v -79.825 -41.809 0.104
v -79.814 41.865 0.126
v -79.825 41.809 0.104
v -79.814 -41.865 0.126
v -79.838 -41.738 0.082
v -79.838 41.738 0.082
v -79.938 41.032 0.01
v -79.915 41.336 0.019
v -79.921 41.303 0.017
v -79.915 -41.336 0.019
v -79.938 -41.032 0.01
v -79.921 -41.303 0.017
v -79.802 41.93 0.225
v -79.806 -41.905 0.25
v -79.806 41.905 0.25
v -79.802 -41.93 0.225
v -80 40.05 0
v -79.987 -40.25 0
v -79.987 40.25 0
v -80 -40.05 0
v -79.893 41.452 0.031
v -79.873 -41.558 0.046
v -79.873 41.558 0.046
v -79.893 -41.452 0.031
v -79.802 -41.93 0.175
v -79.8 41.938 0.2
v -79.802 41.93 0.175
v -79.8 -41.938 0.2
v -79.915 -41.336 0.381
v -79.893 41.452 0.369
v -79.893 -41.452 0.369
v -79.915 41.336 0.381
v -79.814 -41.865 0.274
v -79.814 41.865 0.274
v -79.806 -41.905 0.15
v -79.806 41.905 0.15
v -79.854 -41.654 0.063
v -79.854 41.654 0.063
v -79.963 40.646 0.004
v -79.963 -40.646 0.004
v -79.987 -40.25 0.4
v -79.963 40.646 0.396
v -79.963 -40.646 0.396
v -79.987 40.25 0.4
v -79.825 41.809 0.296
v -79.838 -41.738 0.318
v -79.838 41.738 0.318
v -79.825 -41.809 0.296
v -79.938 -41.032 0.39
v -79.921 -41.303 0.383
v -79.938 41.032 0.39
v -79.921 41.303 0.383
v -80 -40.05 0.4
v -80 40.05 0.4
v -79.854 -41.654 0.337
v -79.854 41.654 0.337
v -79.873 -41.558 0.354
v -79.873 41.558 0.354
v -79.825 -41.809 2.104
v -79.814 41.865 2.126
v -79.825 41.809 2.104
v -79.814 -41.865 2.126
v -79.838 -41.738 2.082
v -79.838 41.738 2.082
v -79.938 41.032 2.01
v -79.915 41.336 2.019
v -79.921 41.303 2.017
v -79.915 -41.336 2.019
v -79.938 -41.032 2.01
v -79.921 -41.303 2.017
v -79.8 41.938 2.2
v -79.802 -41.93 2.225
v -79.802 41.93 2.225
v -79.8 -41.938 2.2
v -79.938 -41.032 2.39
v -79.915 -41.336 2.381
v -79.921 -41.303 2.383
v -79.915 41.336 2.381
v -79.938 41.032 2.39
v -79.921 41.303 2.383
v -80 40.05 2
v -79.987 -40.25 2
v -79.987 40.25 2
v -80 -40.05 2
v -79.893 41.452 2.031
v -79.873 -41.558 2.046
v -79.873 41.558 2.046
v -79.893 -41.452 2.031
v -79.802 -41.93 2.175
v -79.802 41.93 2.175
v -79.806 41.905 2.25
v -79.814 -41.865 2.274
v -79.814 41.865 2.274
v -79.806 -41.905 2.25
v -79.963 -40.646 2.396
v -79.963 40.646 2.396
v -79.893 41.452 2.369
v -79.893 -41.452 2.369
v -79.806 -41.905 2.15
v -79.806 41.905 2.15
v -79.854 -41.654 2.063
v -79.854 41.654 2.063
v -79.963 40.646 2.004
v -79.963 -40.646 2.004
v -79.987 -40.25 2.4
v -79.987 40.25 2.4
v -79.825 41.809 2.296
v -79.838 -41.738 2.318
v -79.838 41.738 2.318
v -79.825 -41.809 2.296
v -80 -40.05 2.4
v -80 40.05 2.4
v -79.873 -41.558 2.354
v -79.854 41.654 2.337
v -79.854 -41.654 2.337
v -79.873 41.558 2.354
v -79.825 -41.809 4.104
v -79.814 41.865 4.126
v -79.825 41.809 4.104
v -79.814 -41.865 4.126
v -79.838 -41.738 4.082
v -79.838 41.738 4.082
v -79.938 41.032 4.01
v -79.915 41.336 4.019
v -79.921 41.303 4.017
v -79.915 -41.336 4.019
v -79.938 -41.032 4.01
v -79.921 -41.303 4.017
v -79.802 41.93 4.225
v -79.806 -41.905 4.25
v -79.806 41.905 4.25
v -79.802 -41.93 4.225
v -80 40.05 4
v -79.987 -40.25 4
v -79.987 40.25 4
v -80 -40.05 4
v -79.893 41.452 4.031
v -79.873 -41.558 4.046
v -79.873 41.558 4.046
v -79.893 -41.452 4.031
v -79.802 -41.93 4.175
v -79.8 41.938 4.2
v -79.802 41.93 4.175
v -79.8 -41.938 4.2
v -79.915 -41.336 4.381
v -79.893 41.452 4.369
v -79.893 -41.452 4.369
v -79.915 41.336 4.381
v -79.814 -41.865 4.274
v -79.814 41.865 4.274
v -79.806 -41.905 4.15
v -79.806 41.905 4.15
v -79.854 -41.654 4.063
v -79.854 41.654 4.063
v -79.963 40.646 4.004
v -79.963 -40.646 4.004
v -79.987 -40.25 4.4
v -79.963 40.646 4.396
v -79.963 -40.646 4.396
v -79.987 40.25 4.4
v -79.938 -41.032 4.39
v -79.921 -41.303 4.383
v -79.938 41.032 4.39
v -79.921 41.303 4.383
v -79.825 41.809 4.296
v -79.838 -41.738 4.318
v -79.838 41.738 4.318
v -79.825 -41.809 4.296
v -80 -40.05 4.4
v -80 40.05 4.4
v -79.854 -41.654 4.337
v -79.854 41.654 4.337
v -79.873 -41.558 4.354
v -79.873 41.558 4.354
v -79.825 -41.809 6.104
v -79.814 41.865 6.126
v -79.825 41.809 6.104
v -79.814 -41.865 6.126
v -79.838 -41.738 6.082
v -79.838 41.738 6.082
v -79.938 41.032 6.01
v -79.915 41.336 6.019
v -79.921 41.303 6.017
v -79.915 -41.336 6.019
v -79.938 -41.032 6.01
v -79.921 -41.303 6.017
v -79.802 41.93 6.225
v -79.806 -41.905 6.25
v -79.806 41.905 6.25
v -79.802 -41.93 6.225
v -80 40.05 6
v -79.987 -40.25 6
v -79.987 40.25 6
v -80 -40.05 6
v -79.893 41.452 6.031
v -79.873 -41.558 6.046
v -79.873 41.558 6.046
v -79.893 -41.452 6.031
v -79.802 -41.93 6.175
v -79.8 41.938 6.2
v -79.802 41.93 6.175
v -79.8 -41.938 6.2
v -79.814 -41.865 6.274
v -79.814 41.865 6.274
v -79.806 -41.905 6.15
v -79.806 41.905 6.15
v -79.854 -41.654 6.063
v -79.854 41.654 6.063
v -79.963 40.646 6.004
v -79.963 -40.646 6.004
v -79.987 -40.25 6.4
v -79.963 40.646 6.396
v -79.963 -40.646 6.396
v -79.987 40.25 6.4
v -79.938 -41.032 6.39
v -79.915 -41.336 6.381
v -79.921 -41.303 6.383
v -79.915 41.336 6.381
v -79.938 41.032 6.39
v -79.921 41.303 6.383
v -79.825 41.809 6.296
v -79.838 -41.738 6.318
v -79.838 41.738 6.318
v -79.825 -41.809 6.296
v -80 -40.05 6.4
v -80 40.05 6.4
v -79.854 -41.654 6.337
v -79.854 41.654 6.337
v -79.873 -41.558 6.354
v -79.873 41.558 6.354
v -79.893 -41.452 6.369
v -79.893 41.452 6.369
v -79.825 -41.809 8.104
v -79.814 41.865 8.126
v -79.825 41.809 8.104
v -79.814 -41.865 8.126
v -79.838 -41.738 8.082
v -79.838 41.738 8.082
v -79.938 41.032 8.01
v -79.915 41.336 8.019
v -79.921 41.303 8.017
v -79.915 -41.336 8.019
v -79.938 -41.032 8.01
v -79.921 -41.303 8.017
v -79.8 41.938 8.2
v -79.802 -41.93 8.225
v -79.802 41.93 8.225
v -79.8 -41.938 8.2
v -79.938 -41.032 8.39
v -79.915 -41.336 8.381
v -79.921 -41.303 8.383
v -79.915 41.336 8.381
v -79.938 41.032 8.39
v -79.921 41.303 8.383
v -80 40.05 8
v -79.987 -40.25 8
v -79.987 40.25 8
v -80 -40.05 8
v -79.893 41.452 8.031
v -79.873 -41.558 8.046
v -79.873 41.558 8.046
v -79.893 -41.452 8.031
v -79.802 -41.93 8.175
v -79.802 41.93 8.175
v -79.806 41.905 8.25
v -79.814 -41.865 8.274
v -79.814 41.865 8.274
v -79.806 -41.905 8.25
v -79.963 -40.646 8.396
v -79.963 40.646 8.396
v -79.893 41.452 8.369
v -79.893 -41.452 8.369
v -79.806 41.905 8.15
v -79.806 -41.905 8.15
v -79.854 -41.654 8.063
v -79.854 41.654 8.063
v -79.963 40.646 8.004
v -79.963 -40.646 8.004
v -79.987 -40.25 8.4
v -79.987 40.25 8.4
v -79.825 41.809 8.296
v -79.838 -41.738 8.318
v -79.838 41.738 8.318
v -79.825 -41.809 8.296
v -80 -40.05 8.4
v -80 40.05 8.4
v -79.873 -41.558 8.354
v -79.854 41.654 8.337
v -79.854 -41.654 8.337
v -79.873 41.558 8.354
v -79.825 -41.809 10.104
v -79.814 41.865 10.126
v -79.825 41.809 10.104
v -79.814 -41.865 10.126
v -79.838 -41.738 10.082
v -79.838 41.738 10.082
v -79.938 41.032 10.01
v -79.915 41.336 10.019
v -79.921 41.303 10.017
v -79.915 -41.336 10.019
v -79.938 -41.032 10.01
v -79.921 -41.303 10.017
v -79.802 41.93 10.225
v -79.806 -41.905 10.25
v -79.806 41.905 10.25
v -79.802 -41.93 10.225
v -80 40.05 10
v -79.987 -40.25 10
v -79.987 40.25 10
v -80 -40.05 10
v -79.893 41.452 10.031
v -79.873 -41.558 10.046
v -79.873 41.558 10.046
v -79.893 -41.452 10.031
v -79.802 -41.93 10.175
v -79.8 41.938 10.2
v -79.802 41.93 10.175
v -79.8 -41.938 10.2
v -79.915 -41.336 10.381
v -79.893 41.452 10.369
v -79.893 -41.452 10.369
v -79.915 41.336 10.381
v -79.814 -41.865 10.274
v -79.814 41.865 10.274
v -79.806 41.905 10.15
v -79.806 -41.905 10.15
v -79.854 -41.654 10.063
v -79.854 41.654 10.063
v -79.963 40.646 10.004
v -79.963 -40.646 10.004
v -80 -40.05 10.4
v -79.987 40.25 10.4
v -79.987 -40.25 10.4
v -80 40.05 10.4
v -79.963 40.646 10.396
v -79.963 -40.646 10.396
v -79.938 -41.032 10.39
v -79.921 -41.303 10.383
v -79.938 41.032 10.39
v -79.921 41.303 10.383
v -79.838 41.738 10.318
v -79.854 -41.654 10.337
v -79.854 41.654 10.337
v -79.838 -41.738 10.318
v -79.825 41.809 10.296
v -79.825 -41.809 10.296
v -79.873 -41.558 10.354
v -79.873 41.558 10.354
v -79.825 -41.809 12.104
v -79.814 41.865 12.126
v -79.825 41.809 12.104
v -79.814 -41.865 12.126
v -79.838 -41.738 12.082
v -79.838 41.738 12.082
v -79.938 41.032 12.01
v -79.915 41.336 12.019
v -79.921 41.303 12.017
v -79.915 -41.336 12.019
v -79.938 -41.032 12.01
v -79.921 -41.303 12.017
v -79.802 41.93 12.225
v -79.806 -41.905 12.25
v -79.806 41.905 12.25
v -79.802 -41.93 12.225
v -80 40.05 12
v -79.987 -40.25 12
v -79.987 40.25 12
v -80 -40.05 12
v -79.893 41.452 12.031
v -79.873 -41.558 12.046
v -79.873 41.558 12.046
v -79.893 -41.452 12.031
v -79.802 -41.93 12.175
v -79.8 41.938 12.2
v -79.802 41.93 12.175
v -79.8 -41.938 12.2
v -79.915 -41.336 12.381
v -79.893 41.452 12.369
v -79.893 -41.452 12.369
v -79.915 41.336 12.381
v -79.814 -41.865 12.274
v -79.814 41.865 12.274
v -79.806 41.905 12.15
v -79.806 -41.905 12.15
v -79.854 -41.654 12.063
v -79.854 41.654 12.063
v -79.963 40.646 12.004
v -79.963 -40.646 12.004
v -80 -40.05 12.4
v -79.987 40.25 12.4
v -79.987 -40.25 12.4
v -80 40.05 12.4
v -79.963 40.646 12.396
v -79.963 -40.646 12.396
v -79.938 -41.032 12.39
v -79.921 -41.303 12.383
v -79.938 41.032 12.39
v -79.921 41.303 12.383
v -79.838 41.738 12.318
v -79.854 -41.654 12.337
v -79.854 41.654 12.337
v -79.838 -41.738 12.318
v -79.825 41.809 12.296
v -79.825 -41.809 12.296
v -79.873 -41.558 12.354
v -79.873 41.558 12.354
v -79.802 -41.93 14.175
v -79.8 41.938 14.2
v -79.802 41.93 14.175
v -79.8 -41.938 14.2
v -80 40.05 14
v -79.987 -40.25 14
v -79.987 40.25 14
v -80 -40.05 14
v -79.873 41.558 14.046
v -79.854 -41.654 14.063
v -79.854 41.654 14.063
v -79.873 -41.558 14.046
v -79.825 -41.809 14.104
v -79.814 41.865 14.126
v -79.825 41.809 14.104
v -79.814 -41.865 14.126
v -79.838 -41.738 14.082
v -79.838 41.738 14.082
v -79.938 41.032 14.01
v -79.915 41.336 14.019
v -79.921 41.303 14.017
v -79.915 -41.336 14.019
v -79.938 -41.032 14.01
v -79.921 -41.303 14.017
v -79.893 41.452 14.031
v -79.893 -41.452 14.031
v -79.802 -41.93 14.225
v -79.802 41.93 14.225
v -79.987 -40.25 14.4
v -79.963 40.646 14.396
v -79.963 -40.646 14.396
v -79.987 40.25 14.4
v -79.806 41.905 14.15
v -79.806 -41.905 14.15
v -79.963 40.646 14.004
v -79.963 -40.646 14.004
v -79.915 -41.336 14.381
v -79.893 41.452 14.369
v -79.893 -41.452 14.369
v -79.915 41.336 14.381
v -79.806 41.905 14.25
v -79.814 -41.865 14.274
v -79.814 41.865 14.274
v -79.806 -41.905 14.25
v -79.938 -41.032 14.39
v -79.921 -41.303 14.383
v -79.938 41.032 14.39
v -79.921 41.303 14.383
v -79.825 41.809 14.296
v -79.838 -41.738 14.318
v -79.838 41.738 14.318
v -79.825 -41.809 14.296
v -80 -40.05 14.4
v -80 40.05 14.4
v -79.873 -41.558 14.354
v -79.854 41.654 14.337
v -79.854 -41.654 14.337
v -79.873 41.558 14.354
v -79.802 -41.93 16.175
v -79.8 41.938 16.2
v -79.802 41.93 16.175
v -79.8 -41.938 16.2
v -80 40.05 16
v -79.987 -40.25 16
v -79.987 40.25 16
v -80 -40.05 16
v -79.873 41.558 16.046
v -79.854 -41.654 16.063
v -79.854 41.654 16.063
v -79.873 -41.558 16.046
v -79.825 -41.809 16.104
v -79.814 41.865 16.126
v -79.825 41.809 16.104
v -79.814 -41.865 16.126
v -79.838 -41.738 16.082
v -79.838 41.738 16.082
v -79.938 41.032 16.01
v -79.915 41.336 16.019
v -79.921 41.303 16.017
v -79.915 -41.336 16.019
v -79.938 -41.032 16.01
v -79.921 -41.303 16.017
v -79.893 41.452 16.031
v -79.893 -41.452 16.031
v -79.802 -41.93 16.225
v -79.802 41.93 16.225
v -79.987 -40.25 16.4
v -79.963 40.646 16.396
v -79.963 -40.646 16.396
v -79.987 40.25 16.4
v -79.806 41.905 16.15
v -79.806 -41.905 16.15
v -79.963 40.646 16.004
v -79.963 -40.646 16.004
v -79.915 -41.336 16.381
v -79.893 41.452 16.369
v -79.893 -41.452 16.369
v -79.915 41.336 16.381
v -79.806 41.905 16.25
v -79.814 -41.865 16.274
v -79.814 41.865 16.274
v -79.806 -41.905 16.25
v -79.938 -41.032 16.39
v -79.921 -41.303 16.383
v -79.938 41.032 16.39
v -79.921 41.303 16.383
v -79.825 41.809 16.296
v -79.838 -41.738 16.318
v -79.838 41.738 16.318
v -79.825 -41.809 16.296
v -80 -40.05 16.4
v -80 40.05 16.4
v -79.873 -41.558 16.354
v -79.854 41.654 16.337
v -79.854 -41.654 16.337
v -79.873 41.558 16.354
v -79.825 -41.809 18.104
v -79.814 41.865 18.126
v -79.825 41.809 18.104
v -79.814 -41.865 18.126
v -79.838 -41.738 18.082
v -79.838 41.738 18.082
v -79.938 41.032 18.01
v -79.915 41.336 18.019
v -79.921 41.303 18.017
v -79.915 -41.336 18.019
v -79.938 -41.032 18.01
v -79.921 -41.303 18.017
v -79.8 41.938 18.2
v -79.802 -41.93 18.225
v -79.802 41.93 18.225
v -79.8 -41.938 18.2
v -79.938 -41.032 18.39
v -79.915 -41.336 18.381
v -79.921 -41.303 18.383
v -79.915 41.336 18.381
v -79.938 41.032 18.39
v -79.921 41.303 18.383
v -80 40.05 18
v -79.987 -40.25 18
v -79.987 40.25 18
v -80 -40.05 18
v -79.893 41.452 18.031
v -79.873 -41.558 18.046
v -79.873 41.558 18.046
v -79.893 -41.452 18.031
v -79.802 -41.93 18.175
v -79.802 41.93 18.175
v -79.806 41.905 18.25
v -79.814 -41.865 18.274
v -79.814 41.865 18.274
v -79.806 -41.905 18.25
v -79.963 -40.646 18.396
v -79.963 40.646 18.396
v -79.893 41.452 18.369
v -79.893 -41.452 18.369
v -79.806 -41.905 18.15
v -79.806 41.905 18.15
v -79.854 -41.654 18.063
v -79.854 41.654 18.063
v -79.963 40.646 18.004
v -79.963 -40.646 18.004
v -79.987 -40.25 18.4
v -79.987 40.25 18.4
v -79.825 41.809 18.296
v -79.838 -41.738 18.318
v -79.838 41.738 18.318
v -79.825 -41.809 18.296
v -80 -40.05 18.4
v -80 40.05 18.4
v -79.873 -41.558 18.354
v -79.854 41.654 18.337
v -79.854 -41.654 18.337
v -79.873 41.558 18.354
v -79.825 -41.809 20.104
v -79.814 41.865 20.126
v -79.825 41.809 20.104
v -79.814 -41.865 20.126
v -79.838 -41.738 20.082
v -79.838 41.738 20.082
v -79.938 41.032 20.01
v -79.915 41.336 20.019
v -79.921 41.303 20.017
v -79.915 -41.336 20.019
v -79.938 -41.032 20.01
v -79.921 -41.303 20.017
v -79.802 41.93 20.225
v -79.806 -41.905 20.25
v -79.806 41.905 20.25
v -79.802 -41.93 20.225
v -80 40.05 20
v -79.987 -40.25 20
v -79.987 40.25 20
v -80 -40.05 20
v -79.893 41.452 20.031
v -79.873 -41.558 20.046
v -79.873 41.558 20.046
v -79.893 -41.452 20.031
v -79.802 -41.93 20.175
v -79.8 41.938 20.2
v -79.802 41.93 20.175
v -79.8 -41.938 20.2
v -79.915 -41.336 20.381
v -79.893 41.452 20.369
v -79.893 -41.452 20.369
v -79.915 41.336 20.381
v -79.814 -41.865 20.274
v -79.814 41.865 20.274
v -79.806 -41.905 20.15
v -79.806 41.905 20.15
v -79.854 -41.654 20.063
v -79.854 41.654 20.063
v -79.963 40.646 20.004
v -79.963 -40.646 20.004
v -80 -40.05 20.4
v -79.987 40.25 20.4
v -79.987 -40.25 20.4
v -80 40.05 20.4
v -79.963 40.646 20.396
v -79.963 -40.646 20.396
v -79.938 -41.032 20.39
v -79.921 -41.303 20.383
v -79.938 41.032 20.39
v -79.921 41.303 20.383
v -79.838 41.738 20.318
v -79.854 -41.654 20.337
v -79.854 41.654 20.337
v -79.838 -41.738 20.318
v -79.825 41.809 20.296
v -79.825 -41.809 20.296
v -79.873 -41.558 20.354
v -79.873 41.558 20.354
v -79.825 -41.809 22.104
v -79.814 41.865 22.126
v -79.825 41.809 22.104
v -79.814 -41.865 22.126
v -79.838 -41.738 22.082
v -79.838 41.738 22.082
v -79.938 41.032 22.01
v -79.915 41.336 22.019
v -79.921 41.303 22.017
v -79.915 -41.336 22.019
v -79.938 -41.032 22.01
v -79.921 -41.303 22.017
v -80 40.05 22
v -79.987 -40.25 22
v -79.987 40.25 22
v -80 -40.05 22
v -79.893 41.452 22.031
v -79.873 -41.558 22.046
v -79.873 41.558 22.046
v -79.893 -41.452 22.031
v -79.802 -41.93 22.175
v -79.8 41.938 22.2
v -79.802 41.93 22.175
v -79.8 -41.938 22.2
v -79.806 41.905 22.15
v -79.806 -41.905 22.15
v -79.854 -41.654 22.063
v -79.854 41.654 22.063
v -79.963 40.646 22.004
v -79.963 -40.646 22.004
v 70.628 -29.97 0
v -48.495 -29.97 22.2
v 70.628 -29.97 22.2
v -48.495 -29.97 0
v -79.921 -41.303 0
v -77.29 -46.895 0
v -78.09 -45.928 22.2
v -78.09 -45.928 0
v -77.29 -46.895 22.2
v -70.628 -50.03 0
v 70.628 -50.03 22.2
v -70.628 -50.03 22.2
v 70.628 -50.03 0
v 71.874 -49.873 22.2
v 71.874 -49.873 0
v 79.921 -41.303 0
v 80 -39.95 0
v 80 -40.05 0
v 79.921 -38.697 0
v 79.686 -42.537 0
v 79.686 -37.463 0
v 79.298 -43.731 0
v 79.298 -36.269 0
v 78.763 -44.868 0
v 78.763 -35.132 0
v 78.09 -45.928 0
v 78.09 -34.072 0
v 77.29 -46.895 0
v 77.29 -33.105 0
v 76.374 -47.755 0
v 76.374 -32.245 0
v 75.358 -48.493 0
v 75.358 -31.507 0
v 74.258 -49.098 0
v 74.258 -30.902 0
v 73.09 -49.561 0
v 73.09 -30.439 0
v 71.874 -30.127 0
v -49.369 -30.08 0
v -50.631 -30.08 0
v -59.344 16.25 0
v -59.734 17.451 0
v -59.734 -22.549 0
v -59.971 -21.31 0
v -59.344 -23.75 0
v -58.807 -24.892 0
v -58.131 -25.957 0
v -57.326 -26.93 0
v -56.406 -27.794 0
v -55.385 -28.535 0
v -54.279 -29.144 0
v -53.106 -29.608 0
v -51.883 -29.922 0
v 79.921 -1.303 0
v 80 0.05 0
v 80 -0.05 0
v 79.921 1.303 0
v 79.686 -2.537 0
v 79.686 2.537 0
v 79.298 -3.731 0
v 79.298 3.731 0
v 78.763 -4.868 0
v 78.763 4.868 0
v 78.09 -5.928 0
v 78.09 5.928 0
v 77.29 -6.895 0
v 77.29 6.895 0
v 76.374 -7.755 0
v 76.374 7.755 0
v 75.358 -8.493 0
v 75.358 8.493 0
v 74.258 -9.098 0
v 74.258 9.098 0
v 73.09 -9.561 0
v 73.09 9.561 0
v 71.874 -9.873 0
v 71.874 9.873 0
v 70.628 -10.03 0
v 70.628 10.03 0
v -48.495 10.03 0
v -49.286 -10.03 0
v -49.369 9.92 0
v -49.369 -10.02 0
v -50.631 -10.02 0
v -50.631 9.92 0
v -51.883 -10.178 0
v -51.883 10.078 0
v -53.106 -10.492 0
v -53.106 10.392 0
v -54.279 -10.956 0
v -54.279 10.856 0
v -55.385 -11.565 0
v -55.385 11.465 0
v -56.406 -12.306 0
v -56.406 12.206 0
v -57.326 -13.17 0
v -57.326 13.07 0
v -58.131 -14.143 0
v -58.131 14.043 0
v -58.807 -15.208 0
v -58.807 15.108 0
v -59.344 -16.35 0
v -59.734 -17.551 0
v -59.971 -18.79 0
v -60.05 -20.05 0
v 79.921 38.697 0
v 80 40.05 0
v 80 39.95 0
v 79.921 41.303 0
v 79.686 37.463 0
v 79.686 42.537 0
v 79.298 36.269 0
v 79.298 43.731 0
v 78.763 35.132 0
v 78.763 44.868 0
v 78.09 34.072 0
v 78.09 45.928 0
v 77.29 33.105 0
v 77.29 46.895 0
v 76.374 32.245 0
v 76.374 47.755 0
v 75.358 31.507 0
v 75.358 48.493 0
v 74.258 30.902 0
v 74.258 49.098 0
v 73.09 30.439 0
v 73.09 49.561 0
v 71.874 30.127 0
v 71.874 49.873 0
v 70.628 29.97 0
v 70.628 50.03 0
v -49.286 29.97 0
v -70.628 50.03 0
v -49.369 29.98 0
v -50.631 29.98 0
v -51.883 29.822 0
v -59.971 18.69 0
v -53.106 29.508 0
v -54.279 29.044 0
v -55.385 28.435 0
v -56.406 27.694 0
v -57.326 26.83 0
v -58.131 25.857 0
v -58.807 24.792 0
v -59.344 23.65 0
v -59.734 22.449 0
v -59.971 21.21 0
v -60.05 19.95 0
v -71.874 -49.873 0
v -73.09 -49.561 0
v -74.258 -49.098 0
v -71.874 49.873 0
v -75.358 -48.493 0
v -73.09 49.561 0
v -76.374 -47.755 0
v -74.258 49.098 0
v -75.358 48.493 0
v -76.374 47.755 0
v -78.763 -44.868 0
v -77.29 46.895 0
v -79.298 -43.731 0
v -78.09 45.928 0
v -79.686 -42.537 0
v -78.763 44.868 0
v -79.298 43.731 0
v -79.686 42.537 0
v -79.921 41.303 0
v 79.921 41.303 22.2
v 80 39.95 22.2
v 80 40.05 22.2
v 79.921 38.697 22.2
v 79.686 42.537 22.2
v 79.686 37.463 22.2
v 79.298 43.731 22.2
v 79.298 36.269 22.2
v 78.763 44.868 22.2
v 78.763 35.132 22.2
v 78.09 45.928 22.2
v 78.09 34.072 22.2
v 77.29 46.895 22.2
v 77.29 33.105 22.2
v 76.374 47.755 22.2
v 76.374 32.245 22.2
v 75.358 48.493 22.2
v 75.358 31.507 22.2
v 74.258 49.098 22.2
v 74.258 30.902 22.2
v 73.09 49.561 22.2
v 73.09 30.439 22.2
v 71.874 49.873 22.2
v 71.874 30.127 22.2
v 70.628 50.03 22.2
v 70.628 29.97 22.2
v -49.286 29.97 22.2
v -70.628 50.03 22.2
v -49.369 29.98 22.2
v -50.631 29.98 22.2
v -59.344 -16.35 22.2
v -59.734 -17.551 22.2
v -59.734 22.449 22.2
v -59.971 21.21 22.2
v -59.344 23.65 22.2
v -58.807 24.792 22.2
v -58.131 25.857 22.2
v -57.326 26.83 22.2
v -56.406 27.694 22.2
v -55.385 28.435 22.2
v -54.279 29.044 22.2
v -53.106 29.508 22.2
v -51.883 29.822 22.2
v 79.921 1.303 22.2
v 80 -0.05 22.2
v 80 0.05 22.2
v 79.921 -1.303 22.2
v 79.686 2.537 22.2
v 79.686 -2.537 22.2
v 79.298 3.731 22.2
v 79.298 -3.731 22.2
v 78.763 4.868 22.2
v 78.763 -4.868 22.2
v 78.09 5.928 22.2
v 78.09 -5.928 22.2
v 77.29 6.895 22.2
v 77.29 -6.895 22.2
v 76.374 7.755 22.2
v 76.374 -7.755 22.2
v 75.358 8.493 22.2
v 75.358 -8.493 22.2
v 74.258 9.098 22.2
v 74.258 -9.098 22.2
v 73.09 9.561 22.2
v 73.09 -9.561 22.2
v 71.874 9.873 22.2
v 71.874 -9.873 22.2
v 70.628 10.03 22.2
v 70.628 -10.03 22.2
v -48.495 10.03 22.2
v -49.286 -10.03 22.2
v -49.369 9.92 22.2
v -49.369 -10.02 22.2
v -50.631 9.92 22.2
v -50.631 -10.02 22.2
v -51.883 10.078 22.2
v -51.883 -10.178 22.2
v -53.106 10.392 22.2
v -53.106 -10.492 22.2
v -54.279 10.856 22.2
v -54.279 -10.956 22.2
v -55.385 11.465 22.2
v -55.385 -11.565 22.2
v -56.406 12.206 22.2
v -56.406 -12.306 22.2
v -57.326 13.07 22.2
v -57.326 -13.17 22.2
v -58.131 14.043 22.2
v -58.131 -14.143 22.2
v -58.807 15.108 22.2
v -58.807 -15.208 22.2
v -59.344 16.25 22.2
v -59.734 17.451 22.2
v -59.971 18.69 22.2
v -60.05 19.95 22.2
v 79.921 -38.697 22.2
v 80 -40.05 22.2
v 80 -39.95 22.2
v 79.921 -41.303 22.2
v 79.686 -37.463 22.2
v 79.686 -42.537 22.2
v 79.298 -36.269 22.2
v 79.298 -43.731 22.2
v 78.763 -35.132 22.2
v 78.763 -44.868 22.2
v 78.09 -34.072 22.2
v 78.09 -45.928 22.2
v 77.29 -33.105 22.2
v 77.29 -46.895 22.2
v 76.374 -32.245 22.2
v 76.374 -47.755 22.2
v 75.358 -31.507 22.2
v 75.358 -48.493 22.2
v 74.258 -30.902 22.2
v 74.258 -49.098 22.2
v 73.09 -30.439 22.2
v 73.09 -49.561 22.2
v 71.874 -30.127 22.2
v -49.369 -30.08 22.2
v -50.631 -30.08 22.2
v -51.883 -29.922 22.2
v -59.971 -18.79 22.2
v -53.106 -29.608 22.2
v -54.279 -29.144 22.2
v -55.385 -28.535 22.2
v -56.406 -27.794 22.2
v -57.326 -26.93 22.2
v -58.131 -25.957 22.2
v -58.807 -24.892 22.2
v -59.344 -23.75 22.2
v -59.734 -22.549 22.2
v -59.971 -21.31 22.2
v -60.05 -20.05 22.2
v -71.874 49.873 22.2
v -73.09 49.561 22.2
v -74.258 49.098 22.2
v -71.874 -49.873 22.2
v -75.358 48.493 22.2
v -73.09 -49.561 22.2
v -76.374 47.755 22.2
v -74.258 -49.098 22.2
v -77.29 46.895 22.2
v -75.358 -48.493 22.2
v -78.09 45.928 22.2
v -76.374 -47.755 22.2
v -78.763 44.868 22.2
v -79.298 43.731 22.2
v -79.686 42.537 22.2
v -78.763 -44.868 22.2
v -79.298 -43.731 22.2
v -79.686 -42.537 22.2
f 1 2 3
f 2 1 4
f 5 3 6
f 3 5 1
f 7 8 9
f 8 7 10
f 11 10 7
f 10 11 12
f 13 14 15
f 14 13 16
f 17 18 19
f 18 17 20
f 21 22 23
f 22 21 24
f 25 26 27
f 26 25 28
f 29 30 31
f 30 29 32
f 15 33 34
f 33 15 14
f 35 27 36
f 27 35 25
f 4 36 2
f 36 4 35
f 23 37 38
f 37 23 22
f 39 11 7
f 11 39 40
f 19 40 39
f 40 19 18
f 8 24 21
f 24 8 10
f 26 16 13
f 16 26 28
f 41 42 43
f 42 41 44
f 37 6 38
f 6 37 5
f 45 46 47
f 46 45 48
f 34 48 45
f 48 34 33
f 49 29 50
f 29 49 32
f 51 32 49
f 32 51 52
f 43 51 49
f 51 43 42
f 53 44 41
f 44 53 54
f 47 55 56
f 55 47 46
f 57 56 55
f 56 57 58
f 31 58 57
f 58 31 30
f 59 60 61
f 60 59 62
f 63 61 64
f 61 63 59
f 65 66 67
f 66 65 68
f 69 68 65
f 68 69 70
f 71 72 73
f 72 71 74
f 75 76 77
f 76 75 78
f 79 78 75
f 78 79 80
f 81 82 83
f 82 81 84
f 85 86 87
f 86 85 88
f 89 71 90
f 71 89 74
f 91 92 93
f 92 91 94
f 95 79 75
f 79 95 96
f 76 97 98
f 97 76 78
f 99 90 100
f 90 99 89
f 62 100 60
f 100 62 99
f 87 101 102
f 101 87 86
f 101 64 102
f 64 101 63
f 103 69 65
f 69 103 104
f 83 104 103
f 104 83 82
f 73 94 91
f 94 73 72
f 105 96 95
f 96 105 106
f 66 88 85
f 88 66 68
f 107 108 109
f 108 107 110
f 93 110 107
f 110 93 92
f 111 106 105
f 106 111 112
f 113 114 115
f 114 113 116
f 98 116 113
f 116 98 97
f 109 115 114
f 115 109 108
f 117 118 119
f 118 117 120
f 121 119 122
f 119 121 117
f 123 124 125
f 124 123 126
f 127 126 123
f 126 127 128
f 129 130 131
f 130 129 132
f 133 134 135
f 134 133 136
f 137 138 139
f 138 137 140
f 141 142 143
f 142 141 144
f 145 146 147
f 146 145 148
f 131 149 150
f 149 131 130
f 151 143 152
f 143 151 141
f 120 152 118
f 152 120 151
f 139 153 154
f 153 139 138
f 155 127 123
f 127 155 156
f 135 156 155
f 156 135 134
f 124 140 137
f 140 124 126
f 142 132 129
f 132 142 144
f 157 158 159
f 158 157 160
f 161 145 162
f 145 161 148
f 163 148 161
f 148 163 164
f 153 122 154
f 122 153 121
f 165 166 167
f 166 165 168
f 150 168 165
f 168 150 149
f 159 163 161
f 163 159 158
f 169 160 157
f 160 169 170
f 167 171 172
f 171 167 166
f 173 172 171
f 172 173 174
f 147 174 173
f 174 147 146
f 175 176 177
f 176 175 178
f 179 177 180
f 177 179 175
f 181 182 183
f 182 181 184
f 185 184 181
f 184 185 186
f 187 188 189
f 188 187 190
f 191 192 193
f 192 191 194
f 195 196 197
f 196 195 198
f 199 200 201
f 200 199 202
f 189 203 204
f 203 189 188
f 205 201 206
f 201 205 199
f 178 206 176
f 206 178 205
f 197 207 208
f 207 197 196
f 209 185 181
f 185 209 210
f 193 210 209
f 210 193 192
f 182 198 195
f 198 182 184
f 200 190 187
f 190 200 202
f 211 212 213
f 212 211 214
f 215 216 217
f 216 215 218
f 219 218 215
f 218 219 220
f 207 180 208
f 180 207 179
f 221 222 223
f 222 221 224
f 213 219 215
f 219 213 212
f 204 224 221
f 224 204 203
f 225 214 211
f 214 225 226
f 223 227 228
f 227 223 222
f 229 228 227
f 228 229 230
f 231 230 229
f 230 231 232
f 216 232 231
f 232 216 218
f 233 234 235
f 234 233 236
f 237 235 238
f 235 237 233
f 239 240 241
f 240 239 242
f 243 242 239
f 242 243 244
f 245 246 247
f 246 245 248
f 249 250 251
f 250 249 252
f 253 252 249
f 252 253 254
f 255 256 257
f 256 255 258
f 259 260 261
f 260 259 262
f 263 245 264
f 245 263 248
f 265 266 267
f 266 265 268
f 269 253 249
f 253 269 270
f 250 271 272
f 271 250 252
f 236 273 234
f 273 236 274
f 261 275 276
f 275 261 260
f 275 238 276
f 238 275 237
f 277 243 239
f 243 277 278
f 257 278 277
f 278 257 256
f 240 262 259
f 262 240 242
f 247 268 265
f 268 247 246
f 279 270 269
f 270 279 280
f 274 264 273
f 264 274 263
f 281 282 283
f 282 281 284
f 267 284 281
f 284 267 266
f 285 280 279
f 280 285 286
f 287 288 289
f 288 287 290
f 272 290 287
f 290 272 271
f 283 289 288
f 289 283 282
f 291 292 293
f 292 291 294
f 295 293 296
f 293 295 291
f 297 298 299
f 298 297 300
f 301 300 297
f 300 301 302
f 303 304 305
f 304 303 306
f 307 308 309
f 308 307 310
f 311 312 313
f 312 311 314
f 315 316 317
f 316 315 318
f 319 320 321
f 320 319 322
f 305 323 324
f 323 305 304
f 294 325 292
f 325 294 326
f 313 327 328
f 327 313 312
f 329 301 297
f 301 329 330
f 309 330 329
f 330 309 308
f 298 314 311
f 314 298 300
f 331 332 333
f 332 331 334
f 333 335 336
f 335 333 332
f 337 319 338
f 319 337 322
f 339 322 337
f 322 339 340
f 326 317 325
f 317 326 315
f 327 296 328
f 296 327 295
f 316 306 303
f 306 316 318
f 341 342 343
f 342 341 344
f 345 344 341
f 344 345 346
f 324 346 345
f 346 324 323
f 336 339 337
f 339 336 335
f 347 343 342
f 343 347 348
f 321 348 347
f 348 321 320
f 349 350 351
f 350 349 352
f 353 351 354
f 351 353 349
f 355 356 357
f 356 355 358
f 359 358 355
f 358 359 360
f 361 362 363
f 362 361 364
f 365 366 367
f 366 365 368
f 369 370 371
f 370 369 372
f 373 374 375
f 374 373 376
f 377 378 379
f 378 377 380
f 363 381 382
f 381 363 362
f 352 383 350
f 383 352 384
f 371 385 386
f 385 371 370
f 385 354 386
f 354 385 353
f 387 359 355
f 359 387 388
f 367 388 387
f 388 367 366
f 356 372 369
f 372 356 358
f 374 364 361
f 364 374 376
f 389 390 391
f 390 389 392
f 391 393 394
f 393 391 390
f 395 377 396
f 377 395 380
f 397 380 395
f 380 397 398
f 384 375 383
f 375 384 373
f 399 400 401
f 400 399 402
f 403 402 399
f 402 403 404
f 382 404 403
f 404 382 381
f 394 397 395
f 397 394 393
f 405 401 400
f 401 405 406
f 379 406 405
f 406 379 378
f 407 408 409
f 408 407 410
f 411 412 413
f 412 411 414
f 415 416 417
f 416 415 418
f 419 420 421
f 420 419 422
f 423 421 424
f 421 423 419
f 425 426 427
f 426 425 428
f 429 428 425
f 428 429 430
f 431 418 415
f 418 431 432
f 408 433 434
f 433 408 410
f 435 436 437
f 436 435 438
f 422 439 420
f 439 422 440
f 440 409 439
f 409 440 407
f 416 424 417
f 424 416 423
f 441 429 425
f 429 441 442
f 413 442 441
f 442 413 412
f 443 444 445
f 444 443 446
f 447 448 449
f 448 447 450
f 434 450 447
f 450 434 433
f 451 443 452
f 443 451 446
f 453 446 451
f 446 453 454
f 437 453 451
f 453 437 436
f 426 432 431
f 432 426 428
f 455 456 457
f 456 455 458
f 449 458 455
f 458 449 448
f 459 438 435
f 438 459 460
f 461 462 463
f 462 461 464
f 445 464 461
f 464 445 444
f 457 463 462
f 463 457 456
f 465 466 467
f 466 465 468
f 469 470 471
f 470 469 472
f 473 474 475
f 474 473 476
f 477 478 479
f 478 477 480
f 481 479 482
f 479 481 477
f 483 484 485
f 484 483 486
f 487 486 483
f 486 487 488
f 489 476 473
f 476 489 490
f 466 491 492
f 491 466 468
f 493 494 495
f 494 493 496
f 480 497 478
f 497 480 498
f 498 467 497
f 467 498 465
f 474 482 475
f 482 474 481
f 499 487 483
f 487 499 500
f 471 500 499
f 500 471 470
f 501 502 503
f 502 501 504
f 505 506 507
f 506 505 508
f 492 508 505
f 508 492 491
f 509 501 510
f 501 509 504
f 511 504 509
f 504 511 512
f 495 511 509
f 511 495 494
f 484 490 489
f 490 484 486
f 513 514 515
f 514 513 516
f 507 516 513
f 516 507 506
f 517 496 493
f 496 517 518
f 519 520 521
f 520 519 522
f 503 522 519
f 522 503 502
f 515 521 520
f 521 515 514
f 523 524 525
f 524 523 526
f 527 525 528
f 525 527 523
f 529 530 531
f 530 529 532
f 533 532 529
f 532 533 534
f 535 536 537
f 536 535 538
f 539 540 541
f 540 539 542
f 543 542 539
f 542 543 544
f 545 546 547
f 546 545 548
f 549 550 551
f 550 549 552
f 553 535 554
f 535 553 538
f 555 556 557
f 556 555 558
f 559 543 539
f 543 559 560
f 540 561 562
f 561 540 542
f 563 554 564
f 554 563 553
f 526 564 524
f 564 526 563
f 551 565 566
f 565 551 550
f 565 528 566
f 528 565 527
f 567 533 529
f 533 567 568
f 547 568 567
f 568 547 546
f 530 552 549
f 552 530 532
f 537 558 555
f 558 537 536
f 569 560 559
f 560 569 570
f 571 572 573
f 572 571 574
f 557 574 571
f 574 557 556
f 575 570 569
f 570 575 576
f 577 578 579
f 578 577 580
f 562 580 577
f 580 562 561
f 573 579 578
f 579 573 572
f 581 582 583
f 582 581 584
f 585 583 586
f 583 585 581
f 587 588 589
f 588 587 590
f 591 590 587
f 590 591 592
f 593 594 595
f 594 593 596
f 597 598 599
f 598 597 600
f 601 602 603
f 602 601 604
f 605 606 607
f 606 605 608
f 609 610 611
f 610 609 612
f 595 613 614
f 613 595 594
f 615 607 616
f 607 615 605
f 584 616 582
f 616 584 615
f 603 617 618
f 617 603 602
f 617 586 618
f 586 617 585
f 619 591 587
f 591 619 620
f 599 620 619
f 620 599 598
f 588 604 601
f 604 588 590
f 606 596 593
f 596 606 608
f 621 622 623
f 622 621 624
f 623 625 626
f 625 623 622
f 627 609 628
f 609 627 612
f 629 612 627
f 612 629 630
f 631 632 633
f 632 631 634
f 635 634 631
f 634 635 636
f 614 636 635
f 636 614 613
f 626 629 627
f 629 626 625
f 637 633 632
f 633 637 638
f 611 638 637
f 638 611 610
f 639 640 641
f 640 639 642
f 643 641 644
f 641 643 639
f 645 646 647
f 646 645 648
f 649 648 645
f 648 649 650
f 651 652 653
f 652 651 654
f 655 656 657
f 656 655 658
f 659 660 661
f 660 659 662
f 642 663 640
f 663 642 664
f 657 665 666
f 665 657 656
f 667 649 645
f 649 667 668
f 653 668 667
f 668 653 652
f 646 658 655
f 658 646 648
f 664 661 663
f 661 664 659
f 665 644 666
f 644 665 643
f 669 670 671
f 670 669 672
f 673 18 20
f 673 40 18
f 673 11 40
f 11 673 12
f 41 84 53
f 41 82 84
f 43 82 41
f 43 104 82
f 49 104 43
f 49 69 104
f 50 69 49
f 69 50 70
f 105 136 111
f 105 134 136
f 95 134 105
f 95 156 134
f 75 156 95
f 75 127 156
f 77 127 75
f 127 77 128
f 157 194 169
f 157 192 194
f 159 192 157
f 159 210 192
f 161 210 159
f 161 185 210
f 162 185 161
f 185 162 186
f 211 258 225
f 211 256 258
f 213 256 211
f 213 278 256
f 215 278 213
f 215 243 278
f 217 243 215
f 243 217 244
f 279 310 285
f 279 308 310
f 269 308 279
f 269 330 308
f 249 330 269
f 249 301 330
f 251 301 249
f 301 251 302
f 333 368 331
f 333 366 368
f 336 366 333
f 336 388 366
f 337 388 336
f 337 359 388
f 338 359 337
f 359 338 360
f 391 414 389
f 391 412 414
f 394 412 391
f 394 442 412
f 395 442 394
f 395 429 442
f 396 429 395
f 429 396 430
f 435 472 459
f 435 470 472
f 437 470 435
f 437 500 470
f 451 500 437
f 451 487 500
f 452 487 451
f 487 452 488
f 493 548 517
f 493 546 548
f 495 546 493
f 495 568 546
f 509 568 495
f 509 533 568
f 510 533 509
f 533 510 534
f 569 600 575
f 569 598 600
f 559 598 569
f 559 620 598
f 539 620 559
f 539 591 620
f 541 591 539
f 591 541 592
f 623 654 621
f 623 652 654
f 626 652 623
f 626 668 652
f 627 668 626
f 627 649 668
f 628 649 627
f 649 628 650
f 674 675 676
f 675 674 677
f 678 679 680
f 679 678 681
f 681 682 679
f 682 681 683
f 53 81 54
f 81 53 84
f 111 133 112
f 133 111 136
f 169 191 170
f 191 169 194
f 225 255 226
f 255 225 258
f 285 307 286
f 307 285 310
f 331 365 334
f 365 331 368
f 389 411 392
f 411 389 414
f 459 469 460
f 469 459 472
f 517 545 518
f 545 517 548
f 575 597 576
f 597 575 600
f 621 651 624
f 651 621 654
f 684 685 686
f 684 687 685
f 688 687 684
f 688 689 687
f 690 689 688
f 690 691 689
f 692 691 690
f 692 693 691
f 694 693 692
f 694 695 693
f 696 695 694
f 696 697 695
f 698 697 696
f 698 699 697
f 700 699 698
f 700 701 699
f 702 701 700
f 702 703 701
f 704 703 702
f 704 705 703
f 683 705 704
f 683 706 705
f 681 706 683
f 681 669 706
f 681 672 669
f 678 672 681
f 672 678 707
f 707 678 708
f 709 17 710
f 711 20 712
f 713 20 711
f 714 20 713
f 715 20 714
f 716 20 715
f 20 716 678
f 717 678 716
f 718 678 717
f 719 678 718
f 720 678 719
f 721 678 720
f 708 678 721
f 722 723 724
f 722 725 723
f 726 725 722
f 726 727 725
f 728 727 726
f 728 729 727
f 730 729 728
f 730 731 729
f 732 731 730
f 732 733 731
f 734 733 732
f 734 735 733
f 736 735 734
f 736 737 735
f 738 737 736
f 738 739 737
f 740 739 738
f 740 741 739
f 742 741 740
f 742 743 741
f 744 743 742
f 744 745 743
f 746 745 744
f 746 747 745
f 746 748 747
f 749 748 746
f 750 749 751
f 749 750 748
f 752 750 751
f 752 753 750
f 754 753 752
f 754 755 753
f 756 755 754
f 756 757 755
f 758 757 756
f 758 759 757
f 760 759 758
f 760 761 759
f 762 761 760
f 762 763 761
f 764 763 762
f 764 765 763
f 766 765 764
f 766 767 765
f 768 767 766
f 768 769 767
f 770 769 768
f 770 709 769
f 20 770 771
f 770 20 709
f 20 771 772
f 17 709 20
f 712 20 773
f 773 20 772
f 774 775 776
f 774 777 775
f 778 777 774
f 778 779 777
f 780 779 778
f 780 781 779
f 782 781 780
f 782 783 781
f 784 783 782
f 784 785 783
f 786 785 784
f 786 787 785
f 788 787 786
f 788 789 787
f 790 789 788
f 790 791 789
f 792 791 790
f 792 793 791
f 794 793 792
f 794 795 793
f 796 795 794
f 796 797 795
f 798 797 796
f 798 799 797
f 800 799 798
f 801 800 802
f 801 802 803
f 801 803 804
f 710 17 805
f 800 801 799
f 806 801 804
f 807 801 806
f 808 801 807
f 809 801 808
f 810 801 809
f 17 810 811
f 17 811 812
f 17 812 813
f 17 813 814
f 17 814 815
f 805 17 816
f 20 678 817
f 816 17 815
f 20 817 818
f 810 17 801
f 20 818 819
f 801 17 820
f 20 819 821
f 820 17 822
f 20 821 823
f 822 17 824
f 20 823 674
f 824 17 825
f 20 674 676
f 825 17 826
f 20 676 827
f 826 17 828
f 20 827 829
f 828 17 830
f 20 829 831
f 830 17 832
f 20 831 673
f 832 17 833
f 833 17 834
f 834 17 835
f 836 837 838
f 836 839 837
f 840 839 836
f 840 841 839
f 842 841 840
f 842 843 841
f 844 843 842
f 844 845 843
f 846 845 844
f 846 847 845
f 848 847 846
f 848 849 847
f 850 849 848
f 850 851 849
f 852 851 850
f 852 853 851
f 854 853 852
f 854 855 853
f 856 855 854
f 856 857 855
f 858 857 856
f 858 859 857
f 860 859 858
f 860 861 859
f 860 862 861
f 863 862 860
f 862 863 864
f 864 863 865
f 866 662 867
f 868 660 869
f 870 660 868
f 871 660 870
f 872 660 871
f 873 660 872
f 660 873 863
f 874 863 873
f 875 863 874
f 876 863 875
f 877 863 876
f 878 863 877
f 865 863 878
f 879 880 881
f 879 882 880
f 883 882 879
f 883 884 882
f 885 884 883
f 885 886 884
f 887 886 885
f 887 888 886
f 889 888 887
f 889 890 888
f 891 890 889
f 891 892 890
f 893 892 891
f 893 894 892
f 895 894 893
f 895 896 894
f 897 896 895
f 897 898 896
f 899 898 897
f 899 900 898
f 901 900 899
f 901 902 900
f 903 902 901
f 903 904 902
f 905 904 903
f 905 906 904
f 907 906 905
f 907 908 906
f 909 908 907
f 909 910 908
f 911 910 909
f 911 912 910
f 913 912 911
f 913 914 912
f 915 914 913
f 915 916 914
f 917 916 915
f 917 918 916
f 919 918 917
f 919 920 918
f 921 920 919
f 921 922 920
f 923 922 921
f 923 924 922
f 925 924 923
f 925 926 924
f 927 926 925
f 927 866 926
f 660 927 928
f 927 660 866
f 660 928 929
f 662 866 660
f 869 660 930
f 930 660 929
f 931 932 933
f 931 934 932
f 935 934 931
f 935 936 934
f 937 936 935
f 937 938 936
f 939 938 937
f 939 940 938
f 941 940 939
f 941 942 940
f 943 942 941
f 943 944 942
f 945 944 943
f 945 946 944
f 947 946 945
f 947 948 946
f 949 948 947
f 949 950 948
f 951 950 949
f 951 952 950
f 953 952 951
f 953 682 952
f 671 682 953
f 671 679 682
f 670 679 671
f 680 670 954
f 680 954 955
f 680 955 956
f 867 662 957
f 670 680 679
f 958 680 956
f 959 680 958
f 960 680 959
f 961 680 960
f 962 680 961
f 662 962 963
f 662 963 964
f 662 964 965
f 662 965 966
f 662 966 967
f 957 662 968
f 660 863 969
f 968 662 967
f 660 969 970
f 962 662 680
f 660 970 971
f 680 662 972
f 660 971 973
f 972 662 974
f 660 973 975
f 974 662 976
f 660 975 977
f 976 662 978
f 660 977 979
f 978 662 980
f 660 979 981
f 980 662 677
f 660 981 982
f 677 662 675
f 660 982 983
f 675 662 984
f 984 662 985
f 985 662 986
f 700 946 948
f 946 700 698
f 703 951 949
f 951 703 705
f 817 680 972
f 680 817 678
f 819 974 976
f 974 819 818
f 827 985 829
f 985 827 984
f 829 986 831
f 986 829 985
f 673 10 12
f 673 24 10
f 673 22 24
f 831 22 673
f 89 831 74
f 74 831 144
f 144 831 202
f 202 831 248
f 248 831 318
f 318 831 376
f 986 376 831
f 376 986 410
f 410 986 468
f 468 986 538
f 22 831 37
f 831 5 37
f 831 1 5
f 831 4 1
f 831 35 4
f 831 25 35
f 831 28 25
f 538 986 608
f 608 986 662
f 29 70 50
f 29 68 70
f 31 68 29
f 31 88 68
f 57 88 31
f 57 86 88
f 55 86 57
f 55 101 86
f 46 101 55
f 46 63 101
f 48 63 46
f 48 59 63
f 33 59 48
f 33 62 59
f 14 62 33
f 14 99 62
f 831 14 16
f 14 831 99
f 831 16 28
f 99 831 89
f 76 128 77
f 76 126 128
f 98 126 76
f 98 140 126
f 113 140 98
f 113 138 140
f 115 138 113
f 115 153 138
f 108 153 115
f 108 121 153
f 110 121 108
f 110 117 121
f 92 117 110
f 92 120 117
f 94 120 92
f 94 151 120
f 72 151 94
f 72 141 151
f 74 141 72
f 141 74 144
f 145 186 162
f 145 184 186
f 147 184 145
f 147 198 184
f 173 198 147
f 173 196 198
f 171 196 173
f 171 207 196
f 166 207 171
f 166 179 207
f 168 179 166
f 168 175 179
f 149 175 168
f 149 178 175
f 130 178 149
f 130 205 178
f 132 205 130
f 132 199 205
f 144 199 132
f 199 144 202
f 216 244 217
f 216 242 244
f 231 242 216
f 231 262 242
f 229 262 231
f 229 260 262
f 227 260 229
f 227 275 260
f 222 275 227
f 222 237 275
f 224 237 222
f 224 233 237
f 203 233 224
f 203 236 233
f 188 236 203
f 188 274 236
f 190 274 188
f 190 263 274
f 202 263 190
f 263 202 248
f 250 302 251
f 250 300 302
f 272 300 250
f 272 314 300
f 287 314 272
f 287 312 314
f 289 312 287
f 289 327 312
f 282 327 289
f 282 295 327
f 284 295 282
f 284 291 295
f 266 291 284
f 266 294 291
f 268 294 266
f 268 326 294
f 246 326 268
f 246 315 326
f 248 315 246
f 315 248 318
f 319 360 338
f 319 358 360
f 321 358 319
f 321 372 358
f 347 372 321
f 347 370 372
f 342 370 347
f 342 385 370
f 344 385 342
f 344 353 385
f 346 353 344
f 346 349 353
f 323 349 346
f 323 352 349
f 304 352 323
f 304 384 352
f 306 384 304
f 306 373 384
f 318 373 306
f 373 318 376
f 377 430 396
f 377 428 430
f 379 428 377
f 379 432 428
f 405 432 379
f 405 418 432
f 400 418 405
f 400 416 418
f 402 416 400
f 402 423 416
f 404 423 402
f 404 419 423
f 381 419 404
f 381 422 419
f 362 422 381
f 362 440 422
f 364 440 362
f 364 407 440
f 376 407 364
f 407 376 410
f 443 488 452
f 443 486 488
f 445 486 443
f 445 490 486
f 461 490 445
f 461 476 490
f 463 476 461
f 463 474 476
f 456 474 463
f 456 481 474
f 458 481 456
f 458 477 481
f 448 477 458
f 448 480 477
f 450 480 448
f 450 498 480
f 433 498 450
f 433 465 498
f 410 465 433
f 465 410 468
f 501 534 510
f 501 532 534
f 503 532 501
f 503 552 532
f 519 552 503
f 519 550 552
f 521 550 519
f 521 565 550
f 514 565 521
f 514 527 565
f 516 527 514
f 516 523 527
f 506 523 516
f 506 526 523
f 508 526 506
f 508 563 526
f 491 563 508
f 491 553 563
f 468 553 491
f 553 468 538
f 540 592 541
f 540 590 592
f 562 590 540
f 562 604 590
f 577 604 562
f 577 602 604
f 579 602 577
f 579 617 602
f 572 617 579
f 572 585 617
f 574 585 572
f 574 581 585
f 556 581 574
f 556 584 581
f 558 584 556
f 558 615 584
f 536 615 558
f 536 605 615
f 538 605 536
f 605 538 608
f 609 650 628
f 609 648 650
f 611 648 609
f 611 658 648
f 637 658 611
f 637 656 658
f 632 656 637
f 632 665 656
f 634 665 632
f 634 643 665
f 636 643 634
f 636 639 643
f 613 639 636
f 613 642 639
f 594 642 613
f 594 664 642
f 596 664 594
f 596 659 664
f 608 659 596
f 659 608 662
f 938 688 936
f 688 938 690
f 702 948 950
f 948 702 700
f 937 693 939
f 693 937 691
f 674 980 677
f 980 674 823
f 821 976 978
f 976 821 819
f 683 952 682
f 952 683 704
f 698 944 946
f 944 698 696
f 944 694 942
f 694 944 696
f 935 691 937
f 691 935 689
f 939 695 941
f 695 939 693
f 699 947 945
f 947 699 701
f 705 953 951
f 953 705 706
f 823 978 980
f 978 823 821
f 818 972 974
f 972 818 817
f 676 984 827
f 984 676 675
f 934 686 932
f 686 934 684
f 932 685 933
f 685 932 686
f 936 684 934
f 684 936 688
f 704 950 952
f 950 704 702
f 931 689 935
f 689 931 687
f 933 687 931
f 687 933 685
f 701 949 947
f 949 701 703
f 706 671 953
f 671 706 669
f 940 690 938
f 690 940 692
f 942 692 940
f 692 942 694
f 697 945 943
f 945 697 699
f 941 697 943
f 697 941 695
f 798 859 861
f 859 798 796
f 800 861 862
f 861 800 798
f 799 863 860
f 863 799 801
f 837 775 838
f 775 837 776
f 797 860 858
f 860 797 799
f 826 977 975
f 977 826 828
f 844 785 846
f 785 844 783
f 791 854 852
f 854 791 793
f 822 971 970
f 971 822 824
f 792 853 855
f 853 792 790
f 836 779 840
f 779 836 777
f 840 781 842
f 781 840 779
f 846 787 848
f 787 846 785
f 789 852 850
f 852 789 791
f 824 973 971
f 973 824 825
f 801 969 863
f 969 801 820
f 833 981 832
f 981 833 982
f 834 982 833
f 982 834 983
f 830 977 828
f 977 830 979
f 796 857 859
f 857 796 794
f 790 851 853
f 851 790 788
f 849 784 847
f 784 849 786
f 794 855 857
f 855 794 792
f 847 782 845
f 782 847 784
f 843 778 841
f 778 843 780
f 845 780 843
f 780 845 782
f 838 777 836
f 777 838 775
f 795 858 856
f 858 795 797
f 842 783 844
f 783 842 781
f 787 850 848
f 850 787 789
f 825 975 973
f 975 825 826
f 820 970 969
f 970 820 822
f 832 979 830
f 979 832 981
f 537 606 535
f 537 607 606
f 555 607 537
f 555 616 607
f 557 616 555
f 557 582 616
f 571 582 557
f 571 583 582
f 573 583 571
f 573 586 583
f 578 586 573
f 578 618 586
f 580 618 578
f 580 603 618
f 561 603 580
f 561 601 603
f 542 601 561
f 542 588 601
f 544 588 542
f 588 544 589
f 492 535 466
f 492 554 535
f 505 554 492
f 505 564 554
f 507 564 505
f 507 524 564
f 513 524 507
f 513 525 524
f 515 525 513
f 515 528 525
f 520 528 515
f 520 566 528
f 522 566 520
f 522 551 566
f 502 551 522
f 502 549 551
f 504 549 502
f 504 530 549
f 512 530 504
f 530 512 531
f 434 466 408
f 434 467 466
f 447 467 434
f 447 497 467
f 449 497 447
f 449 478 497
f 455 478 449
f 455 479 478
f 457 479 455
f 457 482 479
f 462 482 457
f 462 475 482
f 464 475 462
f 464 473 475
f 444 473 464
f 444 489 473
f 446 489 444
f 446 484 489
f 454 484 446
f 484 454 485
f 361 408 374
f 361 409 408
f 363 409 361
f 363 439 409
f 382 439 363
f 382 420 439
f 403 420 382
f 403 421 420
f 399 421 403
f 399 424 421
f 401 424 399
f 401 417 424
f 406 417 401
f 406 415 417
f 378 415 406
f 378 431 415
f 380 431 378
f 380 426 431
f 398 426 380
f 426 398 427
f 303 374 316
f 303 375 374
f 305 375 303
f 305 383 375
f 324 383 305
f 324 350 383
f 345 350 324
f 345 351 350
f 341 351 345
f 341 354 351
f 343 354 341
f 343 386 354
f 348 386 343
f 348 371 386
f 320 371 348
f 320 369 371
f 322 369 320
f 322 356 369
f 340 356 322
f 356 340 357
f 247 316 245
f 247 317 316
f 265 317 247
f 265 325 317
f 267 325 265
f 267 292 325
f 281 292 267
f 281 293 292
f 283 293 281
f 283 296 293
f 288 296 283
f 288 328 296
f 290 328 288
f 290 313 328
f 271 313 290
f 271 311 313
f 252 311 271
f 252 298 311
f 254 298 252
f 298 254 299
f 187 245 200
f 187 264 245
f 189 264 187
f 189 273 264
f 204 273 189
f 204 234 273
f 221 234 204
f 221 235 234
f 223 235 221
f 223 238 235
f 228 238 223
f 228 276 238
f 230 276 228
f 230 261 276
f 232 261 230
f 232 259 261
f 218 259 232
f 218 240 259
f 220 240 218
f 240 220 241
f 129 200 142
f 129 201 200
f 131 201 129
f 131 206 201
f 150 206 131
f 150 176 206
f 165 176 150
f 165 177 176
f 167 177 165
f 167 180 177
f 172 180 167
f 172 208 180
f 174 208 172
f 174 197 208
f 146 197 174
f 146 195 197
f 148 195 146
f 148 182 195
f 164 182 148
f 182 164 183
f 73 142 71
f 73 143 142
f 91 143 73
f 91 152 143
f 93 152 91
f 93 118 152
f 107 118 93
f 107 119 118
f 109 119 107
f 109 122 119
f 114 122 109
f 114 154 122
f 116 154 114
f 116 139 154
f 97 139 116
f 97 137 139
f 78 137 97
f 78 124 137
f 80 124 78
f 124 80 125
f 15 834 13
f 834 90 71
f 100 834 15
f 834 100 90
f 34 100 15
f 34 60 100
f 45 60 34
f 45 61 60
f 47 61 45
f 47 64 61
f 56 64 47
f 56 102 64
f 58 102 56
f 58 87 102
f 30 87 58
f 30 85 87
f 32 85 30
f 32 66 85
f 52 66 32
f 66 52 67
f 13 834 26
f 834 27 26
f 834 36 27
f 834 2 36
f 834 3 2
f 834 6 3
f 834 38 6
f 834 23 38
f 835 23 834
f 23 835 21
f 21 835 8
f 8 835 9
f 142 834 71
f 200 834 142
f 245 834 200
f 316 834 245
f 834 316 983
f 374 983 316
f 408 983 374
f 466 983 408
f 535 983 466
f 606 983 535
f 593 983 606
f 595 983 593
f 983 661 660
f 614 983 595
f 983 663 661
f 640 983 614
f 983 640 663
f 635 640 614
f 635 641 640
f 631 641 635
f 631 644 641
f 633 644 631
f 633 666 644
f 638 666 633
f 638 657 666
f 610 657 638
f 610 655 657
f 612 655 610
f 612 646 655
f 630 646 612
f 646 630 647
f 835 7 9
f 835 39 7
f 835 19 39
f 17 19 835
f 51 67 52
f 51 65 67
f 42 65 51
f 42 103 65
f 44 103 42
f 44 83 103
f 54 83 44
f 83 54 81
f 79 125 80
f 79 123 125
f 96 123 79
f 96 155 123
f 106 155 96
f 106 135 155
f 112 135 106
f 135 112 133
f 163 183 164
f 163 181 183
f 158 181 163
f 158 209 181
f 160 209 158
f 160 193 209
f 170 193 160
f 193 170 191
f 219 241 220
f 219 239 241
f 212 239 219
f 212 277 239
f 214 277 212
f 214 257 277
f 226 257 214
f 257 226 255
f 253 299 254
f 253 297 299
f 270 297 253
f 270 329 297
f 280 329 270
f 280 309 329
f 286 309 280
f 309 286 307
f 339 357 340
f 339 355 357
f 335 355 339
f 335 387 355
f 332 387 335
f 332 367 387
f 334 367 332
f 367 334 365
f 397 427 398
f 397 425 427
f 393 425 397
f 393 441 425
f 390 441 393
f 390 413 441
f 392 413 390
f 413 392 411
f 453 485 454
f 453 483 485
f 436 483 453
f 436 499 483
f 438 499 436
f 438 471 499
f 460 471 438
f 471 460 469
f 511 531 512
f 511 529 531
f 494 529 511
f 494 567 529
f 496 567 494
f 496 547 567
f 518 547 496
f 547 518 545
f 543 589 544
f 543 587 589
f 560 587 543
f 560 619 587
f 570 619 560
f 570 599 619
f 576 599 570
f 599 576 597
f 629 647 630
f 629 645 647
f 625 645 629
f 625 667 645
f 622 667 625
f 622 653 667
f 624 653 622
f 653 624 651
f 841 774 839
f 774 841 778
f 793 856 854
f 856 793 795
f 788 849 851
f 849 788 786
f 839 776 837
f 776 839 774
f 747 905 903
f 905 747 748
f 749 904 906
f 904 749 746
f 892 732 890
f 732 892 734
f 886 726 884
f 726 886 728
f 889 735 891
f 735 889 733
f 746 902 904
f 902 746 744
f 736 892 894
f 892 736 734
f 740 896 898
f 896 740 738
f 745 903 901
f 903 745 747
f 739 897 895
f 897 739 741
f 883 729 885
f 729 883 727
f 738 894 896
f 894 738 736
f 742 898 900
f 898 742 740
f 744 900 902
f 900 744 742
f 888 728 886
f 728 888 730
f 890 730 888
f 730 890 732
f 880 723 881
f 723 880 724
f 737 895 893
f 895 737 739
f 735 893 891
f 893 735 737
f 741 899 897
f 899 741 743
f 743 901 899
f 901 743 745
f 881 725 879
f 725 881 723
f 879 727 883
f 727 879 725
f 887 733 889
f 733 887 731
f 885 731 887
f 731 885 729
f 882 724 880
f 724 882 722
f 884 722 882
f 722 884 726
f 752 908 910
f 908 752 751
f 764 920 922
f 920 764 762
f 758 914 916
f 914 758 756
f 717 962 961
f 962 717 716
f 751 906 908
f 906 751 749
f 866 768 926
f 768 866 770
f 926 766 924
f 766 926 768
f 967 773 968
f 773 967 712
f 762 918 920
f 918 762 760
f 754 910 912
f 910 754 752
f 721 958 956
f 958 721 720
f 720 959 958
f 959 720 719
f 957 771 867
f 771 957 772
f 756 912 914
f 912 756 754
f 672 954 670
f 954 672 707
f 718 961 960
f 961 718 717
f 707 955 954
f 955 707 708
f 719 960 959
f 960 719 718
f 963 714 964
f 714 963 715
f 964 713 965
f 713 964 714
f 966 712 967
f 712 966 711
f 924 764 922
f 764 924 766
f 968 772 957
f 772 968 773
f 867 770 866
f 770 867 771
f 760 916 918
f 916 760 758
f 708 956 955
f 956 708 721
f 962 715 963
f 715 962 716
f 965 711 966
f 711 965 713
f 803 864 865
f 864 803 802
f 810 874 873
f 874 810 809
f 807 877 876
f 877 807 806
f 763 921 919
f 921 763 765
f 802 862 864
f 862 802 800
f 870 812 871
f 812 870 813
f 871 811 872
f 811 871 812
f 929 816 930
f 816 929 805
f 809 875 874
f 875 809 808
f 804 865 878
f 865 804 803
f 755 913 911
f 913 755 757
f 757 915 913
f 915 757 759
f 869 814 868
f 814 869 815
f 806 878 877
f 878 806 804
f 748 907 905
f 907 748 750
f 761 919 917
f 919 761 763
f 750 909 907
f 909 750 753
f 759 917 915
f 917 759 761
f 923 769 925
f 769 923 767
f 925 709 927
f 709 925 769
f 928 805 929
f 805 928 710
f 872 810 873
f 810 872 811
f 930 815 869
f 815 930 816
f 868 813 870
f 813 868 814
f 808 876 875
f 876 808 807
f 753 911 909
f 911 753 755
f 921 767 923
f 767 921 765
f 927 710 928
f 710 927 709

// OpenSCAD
//-------------------------------------------------------------------------------------------
// Max Flow Test
// Original Design : Cnc Kitchen
//                   https://www.printables.com/fr/model/342075-extrusion-test-structure
// Freely adapted by 5@xes  2023
//---------------------------
//     MaxFlow Script
//---------------------------
// Nozzle               : 0.4
// Layer                : 0.25
// Start Value          : 50 %
// Value Increment      : 10 %
// Change Layer         : 8 
// Offset Layer         : 0
//-------------------------------------------------------------------------------------------
// Modification : None
//-------------------------------------------------------------------------------------------

$fn=50;
font = "Arial:style=Bold";

Hc=0.2; // Layer Height
Line_Width = 0.4; // line Width

Height = 110*Hc-1;
letter_size = 0.30*Height;
letter_height = Line_Width;

Base();


module Base() {
  translate([-70, -40.05, 0]) difference() {  
    minkowski() {
        union() {
            translate([0, 0, 0]) cube([10,80,Height+Hc], center = false);
            translate([0, 0, 0]) cube([140,0.1,Height+Hc], center = false);
            translate([0, 40, 0]) cube([140,0.1,Height+Hc], center = false);
            translate([0, 80, 0]) cube([140,0.1,Height+Hc], center = false);
        }
      cylinder(r=10,h=1, center = false);
    }
    translate([20, 20, 0]) cylinder(h = Height*2, r1 = 10.05, r2 = 10.05, center = false);
    translate([20, 60, 0]) cylinder(h = Height*2, r1 = 10.05, r2 = 10.05, center = false);
    
    for (a =[0:2:30])
        translate([-10, -10, a+Hc]) rotate([-90,0,0]) cylinder(h = 150, r1 = 0.2, r2 = 0.2, center = false);
  }
}

module letter(Txt) {
  color("Yellow")
  linear_extrude(height = letter_height) {
    text(Txt, size = letter_size, font = font, halign = "center", valign = "center");
  }
}
